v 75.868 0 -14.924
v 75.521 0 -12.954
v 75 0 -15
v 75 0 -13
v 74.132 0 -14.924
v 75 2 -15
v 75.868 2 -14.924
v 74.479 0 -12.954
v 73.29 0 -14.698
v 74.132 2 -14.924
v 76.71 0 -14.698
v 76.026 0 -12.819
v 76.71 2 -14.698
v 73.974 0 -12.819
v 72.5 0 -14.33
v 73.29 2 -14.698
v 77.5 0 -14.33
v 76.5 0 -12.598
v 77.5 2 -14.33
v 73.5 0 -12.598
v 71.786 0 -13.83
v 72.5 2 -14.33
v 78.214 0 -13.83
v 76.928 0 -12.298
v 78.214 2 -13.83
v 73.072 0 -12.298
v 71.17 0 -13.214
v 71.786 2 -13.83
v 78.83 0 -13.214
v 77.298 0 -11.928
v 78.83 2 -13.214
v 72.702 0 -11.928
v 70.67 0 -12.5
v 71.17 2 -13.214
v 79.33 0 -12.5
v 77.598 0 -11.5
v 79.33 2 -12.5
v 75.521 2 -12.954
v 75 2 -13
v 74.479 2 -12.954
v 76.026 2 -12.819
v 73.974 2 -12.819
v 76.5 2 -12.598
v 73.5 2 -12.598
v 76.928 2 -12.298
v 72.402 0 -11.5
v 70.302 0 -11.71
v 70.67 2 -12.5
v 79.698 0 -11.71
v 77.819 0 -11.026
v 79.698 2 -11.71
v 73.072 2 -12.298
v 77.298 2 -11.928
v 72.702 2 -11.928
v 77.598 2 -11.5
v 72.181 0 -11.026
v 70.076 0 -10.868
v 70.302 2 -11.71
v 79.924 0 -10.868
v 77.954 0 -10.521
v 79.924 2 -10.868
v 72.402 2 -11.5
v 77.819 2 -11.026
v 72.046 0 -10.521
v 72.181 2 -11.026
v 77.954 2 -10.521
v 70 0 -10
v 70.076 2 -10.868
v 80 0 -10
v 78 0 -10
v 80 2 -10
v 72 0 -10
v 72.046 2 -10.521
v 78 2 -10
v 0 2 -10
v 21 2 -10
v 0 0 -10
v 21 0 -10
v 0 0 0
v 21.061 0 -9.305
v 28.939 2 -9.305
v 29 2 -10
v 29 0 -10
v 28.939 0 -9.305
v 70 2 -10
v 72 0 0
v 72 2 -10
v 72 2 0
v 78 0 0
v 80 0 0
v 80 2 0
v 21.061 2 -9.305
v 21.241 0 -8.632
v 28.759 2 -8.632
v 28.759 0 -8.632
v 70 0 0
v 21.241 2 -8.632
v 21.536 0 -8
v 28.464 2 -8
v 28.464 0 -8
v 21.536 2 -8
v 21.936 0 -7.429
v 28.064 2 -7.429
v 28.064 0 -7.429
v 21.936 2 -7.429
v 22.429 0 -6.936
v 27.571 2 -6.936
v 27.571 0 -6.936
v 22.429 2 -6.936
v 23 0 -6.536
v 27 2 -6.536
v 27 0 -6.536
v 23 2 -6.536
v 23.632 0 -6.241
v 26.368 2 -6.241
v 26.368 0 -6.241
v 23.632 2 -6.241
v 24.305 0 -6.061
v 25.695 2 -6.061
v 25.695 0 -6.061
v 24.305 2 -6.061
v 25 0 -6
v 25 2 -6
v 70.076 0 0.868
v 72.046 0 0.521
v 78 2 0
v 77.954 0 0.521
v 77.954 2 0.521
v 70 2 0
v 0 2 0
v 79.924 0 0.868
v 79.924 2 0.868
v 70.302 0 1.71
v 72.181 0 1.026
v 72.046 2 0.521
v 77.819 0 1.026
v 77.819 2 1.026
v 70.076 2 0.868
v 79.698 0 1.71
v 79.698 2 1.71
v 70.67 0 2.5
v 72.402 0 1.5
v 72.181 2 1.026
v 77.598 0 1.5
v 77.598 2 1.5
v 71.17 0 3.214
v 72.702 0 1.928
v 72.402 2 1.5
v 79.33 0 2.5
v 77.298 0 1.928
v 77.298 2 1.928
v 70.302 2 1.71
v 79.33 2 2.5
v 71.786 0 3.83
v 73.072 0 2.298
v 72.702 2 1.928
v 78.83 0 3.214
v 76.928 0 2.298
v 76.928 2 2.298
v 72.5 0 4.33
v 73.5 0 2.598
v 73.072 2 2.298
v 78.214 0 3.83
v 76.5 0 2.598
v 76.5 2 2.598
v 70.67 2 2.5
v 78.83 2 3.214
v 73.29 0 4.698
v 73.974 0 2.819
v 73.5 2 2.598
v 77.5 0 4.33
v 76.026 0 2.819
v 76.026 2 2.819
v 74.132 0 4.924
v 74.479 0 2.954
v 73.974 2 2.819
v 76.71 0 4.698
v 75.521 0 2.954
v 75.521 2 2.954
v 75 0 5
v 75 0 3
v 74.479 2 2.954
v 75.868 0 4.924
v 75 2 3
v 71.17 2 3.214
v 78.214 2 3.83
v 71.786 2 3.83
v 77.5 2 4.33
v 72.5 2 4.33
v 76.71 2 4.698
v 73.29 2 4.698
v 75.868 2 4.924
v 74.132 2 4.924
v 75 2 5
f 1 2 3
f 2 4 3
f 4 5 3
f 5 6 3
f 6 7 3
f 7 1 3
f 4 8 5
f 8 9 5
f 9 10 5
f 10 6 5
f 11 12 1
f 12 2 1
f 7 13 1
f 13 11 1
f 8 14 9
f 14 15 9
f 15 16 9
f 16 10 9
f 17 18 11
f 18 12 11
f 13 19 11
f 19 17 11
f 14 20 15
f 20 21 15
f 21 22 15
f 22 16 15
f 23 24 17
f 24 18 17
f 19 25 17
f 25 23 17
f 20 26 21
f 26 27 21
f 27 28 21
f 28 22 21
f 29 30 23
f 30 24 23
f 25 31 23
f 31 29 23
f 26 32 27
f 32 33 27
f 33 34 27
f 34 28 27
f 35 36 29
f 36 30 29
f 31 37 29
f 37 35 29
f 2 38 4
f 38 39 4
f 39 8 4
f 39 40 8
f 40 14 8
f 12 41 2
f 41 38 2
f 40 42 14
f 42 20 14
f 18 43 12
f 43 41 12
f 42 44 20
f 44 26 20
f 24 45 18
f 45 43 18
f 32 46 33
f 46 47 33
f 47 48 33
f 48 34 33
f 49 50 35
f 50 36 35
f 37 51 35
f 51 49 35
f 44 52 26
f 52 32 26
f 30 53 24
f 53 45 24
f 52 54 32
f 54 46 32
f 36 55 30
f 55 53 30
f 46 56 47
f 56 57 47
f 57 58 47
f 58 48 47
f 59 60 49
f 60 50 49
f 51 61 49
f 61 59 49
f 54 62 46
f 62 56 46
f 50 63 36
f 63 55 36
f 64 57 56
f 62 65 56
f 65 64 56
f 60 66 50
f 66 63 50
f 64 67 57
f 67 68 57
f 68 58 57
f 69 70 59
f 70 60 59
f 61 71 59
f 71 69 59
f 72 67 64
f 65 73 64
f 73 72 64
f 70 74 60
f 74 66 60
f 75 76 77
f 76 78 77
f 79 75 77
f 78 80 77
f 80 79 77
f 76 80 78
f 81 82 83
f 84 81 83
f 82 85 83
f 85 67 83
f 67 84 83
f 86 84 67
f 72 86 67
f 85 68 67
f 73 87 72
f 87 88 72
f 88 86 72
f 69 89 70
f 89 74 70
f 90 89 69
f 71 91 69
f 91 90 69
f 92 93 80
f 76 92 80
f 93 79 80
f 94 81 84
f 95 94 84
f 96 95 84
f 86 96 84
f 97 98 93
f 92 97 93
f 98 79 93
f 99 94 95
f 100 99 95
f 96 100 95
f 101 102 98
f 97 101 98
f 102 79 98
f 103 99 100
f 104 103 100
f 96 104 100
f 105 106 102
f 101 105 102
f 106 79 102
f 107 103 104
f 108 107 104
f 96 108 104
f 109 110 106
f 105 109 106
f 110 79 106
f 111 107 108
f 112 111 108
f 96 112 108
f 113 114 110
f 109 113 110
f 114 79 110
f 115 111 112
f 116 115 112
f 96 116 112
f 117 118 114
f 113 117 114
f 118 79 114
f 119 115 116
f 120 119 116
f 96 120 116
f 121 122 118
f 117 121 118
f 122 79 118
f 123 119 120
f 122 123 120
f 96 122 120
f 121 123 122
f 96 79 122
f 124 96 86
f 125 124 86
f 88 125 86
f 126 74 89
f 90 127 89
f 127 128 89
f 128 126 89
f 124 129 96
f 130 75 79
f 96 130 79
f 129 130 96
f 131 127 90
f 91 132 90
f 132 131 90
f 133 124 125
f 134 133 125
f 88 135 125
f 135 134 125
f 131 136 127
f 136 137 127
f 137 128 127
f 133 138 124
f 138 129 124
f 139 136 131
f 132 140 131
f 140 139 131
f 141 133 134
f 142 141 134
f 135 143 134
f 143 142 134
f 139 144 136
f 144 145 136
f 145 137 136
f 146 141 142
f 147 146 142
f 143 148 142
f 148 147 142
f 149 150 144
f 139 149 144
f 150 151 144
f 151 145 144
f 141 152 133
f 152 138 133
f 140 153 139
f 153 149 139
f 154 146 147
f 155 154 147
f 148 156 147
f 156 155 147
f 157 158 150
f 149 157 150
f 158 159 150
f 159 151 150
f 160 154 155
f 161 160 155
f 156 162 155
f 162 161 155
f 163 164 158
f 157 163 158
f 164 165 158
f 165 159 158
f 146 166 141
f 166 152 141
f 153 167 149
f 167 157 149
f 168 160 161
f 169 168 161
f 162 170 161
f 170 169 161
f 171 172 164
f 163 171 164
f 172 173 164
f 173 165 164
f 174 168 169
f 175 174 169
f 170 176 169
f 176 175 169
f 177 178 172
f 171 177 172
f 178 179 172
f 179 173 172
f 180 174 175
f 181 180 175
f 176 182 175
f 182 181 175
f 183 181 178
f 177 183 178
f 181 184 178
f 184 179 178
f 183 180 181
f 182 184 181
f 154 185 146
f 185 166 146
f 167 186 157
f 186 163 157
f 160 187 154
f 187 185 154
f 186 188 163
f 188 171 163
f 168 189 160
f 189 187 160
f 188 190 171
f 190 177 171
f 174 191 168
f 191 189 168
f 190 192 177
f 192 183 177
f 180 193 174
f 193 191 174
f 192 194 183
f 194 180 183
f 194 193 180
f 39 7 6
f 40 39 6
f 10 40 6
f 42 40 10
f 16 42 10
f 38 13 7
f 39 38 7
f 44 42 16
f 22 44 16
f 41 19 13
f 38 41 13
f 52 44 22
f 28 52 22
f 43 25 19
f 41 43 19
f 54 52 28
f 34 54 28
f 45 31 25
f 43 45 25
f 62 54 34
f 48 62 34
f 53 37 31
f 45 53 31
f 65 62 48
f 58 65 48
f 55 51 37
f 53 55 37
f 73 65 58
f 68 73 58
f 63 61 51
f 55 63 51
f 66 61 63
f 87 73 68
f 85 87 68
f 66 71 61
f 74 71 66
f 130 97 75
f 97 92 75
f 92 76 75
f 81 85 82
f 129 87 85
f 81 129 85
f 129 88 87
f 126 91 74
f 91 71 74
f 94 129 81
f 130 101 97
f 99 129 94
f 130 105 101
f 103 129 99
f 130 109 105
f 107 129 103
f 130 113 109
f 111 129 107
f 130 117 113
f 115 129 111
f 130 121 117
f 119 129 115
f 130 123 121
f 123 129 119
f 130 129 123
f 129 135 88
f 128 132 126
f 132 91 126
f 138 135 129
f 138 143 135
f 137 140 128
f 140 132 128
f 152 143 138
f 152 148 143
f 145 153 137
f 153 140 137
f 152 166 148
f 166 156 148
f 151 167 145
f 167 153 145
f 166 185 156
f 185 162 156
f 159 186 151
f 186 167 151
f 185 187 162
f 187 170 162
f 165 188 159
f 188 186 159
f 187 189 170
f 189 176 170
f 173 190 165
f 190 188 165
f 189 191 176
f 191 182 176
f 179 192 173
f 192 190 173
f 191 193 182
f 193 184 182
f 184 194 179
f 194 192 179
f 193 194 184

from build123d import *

# Parameters (mm, degrees)
BOSS_EXTRUDE1_DEPTH = 2
BOSS_EXTRUDE2_DEPTH = 2
CUT_EXTRUDE1_DEPTH  = 2


with BuildPart() as part:
    # Sketch1 → Boss-Extrude1 (new body)
    with BuildSketch(Plane(origin=(0, 0, 0), x_dir=(1, 0, 0), z_dir=(0, 1, 0))):
        with BuildLine():
            Line((0, 10), (0, 0))
            Line((0, 0), (70, 0))
            Line((70, 0), (70, 10))
            Line((70, 10), (29, 10))
            ThreePointArc((29, 10), (25, 6), (21, 10))
            Line((21, 10), (0, 10))
        make_face()
    extrude(amount=BOSS_EXTRUDE1_DEPTH)

    # Sketch2 → Boss-Extrude2 (add)
    with BuildSketch(Plane(origin=(0, 2, 0), x_dir=(1, 0, 0), z_dir=(0, 1, 0))):
        with BuildLine():
            Line((80, 10), (80, 0))
            ThreePointArc((80, 0), (75, -5), (70, 0))
            Line((70, 0), (70, 10))
            ThreePointArc((70, 10), (75, 15), (80, 10))
        make_face()
    extrude(amount=-BOSS_EXTRUDE2_DEPTH)

    # Sketch3 → Cut-Extrude1 (cut)
    with BuildSketch(Plane(origin=(0, 2, 0), x_dir=(1, 0, 0), z_dir=(0, 1, 0))):
        with BuildLine():
            Line((78, 10), (78, 0))
            ThreePointArc((78, 0), (75, -3), (72, 0))
            Line((72, 0), (72, 10))
            ThreePointArc((72, 10), (75, 13), (78, 10))
        make_face()
    extrude(amount=-CUT_EXTRUDE1_DEPTH, mode=Mode.SUBTRACT)


solid = part.part
